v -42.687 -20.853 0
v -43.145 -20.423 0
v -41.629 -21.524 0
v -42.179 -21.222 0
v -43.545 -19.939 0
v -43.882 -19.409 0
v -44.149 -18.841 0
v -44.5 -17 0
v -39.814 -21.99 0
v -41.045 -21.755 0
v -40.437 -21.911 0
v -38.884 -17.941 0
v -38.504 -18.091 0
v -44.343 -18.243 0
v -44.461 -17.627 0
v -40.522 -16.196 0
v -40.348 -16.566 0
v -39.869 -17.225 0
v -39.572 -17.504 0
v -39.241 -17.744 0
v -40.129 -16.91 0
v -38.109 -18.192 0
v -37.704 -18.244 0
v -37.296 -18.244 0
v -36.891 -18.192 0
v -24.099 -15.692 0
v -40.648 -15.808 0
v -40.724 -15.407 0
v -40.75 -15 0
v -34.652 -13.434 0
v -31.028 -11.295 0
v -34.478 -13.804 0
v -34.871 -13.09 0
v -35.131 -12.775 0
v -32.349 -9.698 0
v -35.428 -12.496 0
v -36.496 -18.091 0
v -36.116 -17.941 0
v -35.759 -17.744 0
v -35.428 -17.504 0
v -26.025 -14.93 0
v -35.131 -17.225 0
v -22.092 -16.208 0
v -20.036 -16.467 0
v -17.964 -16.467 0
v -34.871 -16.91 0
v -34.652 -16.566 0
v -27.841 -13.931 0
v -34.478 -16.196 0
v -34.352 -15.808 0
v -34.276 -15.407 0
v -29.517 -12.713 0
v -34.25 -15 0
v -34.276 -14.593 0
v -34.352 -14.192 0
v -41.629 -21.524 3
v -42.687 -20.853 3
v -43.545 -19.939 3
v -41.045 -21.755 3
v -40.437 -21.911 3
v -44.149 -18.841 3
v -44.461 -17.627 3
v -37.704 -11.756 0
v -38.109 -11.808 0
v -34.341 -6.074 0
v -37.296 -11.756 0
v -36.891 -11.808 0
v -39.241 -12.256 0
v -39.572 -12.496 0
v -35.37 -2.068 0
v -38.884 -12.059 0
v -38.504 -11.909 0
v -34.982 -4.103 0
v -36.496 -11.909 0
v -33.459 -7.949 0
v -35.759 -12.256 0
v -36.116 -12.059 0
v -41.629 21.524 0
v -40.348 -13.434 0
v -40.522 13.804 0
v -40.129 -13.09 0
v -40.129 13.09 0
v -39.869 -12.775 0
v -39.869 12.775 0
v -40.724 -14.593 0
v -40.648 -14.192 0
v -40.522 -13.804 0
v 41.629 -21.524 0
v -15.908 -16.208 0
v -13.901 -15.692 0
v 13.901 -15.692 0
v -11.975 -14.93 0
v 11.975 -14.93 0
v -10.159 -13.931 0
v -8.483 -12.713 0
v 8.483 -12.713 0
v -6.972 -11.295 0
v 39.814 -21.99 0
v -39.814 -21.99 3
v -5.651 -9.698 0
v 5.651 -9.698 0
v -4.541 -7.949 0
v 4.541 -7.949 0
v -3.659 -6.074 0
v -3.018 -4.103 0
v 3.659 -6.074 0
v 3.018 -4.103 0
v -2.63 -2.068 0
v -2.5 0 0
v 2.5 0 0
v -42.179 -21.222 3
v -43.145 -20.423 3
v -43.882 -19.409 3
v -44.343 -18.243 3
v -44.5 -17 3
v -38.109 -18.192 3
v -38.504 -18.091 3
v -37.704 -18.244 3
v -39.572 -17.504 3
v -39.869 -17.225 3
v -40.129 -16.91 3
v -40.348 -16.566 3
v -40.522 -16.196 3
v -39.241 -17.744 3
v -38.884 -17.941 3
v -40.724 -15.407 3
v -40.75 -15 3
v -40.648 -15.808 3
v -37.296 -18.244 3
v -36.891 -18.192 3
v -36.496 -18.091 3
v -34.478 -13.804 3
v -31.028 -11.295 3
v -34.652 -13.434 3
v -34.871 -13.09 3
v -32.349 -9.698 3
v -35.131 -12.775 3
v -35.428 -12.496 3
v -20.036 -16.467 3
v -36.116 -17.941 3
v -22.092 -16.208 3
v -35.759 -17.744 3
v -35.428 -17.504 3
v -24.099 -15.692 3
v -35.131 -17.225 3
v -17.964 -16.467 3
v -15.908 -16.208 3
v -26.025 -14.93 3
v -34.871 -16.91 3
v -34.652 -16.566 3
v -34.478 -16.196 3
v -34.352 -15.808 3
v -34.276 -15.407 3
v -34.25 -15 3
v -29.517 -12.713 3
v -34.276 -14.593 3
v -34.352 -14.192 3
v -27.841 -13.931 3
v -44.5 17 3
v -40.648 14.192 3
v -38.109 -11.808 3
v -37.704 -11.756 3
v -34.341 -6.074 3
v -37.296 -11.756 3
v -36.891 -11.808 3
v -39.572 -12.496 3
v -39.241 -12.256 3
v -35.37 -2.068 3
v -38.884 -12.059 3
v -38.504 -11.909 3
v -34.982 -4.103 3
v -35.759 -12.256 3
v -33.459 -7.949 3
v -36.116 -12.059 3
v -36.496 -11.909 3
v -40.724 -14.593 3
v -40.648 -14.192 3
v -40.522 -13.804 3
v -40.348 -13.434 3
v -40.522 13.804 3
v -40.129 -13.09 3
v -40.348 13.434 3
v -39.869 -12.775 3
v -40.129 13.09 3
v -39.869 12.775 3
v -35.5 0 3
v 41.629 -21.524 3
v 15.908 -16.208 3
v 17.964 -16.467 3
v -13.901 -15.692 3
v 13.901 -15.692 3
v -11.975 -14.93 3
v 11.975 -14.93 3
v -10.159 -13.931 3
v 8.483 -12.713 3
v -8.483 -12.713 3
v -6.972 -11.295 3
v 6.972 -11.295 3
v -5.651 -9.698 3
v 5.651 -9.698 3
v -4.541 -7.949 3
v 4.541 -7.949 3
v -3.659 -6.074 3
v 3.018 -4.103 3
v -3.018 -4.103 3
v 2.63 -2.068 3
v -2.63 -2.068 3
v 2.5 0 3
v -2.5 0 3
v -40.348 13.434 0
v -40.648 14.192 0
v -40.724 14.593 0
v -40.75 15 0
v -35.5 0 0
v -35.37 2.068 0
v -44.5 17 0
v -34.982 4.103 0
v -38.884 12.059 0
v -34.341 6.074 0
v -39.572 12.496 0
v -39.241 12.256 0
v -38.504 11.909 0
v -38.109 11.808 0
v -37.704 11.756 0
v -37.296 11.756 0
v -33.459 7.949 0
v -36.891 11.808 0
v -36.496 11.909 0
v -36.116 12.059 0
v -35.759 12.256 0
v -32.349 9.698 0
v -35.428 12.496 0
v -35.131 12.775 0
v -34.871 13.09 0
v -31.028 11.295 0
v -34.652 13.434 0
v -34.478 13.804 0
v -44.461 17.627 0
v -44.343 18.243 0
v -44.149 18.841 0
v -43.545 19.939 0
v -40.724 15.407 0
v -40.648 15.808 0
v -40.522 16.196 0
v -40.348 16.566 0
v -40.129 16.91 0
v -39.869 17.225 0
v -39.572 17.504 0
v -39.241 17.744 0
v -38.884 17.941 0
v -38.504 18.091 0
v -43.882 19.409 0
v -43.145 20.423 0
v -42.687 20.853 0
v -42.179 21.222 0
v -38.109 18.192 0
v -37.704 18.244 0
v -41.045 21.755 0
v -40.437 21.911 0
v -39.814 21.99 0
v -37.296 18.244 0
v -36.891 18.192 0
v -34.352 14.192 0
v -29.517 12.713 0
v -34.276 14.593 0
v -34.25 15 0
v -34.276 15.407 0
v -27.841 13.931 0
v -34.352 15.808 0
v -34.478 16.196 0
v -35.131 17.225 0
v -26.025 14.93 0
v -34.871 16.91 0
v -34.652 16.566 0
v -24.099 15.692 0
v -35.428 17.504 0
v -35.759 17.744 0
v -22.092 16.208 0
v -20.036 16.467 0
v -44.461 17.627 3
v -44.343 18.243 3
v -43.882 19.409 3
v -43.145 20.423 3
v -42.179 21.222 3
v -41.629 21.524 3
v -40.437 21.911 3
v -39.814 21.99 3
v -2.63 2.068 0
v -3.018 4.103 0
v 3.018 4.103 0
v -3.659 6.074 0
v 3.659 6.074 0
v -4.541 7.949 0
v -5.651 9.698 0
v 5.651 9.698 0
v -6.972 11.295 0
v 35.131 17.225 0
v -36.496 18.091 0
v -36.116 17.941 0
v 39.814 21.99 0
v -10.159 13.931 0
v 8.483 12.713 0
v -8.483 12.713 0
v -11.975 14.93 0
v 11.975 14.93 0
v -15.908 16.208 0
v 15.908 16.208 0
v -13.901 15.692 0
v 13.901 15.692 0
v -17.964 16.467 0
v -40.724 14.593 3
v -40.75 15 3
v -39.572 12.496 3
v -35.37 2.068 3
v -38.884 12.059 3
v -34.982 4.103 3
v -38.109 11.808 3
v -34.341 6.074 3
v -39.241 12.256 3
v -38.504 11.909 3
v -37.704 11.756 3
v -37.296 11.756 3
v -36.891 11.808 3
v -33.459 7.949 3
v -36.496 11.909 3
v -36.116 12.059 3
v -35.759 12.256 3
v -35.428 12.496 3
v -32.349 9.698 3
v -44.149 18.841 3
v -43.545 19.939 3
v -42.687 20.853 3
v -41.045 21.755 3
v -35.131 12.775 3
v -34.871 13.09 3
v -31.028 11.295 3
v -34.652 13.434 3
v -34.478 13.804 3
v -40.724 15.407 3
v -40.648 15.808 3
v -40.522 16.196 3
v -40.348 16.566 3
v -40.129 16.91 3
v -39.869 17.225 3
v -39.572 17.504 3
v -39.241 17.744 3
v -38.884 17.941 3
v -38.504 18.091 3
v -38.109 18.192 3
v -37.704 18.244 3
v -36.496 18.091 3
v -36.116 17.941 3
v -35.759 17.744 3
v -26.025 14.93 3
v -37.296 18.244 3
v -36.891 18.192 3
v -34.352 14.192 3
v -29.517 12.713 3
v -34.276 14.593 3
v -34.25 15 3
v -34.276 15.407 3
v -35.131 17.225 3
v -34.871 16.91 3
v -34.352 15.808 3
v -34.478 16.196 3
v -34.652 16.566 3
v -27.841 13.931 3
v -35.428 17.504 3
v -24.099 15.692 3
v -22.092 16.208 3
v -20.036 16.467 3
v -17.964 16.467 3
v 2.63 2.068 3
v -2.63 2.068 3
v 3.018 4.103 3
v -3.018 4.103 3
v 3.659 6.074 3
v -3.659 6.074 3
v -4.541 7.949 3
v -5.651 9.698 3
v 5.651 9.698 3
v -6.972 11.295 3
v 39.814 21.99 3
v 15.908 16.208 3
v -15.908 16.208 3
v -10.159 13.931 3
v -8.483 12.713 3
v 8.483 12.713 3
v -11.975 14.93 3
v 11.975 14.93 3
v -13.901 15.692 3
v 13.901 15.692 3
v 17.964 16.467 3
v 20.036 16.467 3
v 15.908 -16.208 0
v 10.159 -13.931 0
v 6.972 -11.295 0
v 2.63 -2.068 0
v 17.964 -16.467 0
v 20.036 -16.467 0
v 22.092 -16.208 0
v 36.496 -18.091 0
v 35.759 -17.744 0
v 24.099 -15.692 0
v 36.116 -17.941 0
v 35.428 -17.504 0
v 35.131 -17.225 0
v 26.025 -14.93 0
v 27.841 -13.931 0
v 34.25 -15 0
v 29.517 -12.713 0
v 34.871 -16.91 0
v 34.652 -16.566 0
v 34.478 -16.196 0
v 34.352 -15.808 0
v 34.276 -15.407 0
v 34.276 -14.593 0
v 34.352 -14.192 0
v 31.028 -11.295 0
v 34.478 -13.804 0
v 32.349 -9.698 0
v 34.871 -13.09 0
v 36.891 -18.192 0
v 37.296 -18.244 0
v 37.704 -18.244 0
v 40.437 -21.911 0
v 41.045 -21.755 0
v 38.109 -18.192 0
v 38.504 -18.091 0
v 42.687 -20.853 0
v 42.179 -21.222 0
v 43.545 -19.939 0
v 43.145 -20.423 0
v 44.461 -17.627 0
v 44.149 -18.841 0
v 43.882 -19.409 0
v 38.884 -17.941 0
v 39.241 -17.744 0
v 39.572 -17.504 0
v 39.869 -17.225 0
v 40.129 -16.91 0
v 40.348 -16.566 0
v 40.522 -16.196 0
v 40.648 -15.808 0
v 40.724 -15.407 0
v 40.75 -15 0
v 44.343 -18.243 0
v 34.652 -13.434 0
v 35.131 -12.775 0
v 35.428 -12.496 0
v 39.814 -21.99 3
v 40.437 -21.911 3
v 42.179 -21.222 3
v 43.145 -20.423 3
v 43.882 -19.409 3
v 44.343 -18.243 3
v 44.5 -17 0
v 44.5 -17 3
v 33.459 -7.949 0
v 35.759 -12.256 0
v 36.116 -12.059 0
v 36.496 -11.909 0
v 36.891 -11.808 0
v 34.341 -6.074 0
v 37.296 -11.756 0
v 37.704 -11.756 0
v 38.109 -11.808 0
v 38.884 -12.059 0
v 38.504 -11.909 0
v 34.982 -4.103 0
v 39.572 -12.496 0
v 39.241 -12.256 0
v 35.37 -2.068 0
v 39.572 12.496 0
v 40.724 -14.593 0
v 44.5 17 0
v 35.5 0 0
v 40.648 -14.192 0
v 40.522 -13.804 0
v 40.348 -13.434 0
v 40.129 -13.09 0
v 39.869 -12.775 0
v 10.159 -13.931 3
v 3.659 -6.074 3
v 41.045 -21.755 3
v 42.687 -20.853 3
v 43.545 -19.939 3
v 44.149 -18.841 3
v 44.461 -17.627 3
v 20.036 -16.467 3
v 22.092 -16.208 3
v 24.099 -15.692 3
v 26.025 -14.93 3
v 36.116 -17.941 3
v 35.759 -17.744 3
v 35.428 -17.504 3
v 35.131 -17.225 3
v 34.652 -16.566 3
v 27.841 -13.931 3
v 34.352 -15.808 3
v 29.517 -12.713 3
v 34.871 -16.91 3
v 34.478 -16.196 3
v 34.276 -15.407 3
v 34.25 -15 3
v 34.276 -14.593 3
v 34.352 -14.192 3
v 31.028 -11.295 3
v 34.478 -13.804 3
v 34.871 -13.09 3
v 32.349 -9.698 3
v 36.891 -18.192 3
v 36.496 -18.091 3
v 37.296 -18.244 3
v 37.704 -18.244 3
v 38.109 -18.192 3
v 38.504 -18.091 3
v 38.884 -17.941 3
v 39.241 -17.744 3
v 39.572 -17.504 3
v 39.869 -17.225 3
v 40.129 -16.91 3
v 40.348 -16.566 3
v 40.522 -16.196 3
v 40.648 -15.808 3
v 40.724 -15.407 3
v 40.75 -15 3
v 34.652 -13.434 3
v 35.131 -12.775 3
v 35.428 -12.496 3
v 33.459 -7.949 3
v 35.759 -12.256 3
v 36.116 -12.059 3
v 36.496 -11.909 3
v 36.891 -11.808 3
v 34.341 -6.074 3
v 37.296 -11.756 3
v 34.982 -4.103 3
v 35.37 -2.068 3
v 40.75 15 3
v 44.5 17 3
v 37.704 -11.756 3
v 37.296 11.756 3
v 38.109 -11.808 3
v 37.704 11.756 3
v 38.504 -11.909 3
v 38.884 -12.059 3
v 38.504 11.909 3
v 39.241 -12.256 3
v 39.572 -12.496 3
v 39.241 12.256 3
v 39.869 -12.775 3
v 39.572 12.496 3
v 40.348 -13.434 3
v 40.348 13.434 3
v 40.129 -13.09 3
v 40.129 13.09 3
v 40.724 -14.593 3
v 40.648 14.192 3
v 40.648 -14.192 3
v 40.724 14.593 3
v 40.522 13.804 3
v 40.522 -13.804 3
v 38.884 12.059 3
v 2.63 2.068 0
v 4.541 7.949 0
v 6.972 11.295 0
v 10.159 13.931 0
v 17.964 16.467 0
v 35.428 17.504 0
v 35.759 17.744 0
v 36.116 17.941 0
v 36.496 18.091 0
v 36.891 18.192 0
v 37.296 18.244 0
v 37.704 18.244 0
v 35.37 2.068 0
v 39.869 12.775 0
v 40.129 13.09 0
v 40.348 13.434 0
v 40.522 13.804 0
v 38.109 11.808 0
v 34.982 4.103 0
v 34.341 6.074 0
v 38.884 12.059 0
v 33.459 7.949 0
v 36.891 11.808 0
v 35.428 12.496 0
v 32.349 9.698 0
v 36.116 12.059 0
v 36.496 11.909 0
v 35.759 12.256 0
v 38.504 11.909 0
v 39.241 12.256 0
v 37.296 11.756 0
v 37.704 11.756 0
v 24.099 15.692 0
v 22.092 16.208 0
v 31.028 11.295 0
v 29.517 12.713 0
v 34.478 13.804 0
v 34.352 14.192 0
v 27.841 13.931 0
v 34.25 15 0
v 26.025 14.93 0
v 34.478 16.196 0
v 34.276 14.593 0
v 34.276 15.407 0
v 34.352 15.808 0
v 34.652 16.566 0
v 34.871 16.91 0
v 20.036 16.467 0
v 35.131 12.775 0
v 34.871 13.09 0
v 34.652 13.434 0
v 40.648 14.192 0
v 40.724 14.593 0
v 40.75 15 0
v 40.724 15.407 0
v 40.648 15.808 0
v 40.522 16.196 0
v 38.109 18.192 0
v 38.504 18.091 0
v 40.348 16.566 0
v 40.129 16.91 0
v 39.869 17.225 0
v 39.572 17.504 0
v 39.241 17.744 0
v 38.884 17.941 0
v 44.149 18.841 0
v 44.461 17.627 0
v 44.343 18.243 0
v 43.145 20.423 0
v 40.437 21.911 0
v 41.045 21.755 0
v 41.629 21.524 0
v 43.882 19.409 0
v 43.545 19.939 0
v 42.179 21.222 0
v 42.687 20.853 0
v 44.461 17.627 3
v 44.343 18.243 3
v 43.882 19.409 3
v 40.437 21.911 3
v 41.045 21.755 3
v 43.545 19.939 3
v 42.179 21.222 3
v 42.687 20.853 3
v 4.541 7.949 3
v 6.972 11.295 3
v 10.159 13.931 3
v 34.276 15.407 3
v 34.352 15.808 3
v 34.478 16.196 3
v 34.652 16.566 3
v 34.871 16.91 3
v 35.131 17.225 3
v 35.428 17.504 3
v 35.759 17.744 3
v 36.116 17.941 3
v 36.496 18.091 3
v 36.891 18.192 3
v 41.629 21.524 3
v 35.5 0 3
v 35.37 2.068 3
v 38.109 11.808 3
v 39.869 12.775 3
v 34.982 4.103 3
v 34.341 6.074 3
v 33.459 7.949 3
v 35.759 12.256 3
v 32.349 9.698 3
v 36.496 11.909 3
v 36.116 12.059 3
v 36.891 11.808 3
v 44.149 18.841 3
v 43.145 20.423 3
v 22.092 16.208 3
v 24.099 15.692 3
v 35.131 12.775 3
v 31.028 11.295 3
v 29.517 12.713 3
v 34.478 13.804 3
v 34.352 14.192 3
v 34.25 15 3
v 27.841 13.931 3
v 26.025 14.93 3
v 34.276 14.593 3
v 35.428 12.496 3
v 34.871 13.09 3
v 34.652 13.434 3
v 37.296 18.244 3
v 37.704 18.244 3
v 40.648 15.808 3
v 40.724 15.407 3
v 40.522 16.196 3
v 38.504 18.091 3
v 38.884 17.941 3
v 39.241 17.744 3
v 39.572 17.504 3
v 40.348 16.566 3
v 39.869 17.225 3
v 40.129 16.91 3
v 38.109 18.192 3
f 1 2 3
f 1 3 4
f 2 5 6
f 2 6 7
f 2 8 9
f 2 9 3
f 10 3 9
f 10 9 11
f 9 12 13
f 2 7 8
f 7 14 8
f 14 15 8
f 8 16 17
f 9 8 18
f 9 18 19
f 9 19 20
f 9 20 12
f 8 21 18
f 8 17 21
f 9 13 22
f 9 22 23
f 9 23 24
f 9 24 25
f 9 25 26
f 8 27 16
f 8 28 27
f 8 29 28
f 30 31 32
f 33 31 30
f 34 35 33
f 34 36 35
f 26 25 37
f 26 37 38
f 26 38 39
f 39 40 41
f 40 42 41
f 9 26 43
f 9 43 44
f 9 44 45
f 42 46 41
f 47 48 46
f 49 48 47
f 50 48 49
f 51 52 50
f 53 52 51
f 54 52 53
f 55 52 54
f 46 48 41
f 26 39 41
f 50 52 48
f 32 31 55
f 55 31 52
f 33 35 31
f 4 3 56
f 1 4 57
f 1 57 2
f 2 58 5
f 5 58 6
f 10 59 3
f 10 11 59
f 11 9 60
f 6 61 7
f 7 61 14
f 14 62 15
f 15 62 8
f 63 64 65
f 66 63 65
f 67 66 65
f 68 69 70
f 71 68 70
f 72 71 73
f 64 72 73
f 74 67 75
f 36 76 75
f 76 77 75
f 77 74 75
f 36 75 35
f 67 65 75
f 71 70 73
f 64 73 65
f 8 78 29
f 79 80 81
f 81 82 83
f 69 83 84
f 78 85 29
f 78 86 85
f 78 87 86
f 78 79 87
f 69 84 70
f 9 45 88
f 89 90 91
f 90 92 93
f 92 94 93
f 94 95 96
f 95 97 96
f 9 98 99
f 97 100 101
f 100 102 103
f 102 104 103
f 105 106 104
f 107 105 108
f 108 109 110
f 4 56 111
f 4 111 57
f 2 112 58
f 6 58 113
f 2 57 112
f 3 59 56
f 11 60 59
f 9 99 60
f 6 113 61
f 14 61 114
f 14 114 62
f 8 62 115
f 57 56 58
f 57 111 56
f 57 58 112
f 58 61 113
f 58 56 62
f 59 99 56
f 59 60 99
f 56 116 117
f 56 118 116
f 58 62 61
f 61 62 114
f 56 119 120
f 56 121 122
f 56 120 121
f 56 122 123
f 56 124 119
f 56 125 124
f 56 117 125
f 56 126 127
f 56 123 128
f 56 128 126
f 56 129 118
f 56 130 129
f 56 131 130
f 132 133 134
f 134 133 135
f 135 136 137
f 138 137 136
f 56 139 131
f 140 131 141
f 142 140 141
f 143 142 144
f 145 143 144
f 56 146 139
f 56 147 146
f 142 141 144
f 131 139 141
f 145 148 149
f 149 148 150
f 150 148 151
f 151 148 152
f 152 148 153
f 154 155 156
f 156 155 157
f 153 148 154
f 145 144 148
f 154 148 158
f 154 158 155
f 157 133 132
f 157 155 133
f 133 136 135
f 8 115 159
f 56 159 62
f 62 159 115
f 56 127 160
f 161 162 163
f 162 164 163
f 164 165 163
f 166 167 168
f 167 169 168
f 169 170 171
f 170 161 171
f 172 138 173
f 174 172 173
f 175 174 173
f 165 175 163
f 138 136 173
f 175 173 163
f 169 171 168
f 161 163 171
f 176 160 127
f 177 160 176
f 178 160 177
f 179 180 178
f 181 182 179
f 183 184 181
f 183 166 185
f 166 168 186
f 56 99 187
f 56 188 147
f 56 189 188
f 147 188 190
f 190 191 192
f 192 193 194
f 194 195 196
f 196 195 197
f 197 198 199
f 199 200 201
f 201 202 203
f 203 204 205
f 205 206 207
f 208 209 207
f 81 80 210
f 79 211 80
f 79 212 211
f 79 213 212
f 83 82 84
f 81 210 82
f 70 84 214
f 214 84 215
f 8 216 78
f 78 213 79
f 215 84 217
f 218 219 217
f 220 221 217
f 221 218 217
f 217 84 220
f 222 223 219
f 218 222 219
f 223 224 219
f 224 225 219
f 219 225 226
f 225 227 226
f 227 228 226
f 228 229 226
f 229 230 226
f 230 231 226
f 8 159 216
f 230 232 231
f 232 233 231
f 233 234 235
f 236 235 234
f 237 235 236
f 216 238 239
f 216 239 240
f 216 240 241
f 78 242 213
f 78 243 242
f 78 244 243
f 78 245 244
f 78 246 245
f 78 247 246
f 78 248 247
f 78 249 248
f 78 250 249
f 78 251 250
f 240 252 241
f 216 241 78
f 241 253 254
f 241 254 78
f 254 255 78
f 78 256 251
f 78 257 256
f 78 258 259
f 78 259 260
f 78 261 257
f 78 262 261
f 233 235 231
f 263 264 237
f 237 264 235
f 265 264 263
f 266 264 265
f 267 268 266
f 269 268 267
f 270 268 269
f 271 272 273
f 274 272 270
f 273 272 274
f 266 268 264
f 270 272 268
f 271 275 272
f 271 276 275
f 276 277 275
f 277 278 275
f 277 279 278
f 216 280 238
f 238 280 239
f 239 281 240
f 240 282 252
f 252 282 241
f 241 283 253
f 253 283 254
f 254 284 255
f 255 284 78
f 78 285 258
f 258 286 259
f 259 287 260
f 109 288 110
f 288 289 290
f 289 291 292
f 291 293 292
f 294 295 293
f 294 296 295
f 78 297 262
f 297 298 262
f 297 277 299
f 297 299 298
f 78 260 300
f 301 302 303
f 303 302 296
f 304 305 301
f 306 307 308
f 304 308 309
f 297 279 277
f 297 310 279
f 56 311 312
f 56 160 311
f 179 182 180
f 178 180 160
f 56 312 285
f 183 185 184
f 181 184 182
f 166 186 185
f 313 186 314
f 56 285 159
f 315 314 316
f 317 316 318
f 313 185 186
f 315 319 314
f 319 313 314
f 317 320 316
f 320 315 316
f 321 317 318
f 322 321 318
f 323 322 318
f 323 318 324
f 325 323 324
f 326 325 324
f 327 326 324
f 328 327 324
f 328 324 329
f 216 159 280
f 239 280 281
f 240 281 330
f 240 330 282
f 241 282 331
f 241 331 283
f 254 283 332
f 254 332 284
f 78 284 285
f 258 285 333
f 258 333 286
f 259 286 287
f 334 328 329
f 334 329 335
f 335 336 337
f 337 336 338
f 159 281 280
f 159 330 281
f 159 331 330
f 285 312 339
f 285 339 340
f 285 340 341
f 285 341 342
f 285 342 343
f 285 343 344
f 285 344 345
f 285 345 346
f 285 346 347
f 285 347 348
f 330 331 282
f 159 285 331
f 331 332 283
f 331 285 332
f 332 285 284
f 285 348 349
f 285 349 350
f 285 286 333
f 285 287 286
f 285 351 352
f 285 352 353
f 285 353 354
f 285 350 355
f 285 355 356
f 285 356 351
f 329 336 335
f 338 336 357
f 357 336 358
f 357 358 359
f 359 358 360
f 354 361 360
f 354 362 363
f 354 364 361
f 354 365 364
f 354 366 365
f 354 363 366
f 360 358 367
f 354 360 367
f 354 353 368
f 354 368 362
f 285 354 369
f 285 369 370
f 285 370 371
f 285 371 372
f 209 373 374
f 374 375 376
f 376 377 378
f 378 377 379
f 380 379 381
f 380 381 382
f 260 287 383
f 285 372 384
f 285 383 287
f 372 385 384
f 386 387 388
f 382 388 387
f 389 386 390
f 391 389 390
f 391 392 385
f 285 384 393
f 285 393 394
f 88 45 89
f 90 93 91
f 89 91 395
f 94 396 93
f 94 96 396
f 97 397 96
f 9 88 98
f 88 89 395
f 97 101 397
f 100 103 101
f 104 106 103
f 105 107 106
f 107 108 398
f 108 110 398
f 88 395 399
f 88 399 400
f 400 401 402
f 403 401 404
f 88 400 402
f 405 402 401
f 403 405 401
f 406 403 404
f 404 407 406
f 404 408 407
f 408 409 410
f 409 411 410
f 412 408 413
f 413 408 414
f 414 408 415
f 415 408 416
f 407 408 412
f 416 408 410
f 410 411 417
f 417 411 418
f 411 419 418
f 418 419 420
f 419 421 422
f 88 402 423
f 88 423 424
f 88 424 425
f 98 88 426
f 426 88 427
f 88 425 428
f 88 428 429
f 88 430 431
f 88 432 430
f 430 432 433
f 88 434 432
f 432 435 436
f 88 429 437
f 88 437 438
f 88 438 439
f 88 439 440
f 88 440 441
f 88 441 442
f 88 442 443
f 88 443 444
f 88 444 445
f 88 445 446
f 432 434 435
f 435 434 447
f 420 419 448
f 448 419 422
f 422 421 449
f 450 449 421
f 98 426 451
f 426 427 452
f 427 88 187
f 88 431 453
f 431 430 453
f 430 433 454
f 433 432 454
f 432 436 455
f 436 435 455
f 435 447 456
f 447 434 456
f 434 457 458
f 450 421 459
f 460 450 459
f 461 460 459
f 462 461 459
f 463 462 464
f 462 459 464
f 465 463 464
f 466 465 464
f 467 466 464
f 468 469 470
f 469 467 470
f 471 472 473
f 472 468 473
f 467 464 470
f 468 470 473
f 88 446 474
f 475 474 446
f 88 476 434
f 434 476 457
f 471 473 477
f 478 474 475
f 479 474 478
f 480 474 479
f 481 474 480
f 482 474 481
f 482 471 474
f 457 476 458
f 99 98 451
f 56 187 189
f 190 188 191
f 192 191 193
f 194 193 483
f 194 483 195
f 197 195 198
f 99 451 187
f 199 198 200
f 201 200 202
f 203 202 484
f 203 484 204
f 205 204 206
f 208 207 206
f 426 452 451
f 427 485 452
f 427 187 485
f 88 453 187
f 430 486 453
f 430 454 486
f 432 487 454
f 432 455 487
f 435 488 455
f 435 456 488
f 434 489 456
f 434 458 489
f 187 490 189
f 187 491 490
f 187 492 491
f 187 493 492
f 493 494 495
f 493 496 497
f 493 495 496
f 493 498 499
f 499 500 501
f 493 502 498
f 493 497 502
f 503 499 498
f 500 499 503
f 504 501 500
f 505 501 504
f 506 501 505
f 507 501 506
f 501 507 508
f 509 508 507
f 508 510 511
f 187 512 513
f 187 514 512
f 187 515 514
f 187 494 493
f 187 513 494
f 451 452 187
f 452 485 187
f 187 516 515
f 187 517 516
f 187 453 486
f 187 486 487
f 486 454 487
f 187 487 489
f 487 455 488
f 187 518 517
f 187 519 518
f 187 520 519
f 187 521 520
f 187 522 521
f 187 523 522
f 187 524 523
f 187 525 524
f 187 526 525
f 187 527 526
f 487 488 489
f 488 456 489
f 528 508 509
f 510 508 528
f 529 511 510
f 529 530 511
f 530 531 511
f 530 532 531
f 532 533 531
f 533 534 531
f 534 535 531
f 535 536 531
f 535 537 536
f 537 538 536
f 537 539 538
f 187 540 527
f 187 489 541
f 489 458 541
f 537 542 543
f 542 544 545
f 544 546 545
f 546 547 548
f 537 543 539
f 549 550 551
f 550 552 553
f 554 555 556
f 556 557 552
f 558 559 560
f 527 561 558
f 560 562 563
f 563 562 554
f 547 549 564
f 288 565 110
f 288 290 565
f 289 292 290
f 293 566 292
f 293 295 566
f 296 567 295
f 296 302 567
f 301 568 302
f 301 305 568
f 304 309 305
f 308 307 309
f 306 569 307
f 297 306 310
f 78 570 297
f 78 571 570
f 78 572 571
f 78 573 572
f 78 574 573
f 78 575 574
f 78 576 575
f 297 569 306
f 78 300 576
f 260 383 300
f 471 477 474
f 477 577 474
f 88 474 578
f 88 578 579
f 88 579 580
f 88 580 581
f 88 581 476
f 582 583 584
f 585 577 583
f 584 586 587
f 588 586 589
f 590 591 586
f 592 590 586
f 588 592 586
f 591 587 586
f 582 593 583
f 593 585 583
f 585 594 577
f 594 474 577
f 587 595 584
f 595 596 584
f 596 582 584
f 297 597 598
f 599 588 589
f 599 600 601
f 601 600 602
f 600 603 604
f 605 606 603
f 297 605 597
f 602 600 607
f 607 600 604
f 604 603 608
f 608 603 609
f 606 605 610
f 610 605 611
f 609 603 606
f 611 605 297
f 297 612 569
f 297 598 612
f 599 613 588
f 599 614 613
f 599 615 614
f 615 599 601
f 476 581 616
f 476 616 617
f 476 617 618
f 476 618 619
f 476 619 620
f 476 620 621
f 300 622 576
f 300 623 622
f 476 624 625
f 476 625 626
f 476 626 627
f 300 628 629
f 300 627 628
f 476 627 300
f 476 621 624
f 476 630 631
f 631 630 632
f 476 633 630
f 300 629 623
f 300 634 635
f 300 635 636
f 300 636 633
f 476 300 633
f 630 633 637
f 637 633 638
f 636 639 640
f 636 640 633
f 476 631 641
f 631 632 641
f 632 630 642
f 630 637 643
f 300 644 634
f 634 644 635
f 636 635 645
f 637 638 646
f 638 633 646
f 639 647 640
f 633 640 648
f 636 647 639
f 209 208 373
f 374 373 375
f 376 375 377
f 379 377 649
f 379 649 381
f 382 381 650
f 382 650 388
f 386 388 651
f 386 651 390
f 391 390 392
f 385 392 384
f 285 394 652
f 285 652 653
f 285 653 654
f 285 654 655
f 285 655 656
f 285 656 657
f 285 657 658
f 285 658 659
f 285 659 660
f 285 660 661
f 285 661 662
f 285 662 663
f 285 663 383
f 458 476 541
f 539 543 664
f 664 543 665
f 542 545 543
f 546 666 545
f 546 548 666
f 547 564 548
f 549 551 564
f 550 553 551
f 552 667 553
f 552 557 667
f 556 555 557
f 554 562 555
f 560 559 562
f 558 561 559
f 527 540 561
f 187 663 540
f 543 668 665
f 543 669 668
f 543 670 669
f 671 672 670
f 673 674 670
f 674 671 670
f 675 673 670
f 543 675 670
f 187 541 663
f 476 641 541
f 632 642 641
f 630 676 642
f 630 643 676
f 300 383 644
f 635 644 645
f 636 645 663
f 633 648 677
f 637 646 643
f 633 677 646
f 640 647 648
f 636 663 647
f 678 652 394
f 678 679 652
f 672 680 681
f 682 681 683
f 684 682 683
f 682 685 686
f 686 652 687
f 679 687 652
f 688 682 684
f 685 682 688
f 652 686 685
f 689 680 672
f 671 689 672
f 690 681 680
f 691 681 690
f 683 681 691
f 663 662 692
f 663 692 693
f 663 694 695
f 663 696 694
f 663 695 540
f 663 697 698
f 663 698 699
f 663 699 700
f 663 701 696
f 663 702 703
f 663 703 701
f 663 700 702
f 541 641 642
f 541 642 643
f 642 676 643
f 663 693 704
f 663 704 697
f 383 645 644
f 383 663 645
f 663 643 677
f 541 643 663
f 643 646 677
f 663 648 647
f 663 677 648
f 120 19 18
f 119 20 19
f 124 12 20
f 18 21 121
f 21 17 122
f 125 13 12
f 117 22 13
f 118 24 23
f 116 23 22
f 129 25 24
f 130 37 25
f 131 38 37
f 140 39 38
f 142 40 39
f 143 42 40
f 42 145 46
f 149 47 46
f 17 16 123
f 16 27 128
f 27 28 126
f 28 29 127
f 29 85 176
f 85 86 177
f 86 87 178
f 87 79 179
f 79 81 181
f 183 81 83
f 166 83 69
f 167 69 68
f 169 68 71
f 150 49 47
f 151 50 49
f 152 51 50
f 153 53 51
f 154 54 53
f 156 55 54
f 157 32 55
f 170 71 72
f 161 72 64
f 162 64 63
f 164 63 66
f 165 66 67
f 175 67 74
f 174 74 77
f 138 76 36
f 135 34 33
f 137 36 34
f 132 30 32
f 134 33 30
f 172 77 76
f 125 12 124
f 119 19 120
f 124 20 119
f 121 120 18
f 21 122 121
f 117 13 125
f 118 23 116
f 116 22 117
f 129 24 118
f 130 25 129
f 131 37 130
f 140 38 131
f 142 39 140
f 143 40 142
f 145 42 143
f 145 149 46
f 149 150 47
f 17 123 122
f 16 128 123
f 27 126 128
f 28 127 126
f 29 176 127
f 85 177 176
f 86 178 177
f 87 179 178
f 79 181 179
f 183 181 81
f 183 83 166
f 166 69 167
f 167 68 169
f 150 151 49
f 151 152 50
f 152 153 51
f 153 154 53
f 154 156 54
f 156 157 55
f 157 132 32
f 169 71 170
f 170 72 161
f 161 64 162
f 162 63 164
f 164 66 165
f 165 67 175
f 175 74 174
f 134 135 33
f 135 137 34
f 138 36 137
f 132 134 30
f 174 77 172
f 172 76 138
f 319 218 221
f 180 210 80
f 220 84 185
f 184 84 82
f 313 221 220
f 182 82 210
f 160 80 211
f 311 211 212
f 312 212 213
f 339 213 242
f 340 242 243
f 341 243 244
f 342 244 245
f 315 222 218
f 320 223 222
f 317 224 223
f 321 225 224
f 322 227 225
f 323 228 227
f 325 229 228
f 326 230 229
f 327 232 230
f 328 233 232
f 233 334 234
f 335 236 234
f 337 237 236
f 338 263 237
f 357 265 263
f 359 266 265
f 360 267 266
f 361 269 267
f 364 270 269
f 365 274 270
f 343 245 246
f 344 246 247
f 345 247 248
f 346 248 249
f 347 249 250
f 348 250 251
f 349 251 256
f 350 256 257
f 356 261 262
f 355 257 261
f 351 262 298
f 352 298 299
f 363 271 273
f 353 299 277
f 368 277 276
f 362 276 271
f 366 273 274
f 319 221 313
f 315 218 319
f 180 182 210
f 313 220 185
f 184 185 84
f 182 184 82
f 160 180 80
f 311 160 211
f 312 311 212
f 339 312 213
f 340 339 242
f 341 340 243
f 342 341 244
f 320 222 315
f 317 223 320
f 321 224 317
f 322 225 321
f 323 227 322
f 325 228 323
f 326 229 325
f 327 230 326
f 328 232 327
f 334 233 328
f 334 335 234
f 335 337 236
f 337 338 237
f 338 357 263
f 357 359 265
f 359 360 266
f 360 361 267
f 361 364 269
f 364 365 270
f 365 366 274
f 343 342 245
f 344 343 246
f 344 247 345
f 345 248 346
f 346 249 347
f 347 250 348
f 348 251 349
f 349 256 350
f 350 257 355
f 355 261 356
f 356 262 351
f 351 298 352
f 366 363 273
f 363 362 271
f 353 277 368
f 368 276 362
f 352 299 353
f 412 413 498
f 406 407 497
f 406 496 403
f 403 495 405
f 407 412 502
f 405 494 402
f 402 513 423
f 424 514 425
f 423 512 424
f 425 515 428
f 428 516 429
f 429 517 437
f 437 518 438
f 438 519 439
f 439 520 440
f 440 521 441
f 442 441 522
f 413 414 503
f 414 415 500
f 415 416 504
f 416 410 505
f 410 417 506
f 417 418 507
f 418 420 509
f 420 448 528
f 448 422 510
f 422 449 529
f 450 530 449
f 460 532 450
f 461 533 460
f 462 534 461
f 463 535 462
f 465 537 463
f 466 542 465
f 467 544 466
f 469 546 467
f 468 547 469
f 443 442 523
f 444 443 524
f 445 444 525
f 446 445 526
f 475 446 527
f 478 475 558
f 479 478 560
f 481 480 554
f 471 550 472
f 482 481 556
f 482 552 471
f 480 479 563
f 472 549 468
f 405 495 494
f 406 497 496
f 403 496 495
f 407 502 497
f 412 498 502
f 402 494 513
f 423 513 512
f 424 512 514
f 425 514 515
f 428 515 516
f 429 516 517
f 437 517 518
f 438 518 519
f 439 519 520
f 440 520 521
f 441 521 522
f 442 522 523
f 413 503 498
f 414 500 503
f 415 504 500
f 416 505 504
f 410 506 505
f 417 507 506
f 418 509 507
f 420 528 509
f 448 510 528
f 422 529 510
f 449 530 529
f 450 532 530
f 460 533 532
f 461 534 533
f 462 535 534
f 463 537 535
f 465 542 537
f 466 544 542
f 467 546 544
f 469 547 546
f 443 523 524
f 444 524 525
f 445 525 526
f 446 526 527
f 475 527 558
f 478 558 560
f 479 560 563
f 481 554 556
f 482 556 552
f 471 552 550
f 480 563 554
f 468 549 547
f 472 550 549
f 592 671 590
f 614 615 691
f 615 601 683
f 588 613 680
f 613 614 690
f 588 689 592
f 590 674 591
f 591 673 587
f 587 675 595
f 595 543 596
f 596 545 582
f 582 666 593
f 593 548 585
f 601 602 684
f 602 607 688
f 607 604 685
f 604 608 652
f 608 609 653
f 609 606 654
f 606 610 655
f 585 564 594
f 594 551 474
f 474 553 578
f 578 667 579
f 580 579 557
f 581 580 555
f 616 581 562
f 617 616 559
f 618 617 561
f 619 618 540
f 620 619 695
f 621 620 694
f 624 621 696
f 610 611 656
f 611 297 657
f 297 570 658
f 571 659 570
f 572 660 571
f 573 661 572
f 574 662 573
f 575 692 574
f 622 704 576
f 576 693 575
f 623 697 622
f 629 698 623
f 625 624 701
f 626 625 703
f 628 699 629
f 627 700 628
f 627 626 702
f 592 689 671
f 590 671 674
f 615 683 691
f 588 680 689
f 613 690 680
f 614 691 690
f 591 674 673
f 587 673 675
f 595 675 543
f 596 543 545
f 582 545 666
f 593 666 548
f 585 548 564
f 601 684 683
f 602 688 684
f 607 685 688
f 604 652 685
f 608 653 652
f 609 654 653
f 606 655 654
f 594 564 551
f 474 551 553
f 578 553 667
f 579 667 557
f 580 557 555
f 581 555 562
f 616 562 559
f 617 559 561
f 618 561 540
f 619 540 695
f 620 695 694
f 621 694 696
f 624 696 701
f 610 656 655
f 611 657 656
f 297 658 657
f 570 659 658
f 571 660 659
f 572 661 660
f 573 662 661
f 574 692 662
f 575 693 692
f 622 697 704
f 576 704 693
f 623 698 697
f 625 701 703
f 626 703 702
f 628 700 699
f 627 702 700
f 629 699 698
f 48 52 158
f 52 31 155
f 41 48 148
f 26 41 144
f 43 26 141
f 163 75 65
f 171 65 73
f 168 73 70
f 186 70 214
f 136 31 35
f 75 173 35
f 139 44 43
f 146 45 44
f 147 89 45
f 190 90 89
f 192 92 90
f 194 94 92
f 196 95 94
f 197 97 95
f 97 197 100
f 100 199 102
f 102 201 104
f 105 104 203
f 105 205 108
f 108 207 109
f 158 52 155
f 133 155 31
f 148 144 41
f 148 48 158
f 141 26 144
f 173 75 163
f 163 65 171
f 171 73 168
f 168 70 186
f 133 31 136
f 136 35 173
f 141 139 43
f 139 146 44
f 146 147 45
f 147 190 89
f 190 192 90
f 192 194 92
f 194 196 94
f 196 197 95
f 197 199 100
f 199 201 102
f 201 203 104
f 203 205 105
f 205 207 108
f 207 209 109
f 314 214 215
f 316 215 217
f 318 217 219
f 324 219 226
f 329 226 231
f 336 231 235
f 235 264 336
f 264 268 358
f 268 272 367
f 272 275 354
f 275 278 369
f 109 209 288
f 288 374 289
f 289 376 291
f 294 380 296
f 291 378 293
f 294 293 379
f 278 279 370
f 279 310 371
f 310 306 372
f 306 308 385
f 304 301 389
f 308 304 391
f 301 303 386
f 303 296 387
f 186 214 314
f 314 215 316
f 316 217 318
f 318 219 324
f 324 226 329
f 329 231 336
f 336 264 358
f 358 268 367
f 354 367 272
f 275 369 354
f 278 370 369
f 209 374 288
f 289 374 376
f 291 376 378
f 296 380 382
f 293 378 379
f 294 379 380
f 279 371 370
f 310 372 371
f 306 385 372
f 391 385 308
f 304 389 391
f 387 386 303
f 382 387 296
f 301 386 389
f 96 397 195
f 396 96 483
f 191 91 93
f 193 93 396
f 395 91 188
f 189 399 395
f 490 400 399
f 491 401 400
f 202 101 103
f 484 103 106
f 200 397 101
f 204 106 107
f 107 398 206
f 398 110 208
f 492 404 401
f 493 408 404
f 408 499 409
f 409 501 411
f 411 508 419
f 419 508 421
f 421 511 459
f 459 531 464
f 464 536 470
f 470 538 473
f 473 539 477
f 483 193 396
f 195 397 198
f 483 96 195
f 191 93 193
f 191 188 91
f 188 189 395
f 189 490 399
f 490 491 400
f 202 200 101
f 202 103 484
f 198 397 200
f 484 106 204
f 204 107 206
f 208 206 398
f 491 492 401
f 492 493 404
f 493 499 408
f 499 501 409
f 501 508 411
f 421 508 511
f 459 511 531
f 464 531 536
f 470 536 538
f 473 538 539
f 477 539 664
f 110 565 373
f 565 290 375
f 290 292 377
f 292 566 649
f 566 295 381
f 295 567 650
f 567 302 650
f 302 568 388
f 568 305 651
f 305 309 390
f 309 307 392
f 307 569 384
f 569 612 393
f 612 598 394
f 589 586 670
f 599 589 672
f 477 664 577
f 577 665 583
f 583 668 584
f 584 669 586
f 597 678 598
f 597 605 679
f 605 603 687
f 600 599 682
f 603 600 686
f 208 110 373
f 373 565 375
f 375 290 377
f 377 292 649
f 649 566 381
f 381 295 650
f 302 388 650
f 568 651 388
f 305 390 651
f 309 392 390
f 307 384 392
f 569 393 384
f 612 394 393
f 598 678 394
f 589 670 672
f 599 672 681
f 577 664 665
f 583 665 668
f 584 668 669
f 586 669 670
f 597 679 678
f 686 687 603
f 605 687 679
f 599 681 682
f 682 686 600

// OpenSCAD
$fn = 50;

difference() {
	union() {
		hull() {
			translate(v = [-39.5, 17.0, 0]) {
				cylinder(h = 3, r = 5);
			}
			translate(v = [39.5, 17.0, 0]) {
				cylinder(h = 3, r = 5);
			}
			translate(v = [-39.5, -17.0, 0]) {
				cylinder(h = 3, r = 5);
			}
			translate(v = [39.5, -17.0, 0]) {
				cylinder(h = 3, r = 5);
			}
		}
	}
	union() {
		translate(v = [-37.5, -15.0, -100.0]) {
			cylinder(h = 200, r = 3.25);
		}
		translate(v = [-37.5, 15.0, -100.0]) {
			cylinder(h = 200, r = 3.25);
		}
		translate(v = [37.5, -15.0, -100.0]) {
			cylinder(h = 200, r = 3.25);
		}
		translate(v = [37.5, 15.0, -100.0]) {
			cylinder(h = 200, r = 3.25);
		}
		translate(v = [-37.5, -15.0, -100.0]) {
			cylinder(h = 200, r = 1.8);
		}
		translate(v = [-37.5, 15.0, -100.0]) {
			cylinder(h = 200, r = 1.8);
		}
		translate(v = [37.5, -15.0, -100.0]) {
			cylinder(h = 200, r = 1.8);
		}
		translate(v = [37.5, 15.0, -100.0]) {
			cylinder(h = 200, r = 1.8);
		}
		translate(v = [-19.0, 0, 0.0]) {
			cylinder(h = 3, r = 16.5);
		}
		translate(v = [19.0, 0, 0.0]) {
			cylinder(h = 3, r = 16.5);
		}
	}
}
